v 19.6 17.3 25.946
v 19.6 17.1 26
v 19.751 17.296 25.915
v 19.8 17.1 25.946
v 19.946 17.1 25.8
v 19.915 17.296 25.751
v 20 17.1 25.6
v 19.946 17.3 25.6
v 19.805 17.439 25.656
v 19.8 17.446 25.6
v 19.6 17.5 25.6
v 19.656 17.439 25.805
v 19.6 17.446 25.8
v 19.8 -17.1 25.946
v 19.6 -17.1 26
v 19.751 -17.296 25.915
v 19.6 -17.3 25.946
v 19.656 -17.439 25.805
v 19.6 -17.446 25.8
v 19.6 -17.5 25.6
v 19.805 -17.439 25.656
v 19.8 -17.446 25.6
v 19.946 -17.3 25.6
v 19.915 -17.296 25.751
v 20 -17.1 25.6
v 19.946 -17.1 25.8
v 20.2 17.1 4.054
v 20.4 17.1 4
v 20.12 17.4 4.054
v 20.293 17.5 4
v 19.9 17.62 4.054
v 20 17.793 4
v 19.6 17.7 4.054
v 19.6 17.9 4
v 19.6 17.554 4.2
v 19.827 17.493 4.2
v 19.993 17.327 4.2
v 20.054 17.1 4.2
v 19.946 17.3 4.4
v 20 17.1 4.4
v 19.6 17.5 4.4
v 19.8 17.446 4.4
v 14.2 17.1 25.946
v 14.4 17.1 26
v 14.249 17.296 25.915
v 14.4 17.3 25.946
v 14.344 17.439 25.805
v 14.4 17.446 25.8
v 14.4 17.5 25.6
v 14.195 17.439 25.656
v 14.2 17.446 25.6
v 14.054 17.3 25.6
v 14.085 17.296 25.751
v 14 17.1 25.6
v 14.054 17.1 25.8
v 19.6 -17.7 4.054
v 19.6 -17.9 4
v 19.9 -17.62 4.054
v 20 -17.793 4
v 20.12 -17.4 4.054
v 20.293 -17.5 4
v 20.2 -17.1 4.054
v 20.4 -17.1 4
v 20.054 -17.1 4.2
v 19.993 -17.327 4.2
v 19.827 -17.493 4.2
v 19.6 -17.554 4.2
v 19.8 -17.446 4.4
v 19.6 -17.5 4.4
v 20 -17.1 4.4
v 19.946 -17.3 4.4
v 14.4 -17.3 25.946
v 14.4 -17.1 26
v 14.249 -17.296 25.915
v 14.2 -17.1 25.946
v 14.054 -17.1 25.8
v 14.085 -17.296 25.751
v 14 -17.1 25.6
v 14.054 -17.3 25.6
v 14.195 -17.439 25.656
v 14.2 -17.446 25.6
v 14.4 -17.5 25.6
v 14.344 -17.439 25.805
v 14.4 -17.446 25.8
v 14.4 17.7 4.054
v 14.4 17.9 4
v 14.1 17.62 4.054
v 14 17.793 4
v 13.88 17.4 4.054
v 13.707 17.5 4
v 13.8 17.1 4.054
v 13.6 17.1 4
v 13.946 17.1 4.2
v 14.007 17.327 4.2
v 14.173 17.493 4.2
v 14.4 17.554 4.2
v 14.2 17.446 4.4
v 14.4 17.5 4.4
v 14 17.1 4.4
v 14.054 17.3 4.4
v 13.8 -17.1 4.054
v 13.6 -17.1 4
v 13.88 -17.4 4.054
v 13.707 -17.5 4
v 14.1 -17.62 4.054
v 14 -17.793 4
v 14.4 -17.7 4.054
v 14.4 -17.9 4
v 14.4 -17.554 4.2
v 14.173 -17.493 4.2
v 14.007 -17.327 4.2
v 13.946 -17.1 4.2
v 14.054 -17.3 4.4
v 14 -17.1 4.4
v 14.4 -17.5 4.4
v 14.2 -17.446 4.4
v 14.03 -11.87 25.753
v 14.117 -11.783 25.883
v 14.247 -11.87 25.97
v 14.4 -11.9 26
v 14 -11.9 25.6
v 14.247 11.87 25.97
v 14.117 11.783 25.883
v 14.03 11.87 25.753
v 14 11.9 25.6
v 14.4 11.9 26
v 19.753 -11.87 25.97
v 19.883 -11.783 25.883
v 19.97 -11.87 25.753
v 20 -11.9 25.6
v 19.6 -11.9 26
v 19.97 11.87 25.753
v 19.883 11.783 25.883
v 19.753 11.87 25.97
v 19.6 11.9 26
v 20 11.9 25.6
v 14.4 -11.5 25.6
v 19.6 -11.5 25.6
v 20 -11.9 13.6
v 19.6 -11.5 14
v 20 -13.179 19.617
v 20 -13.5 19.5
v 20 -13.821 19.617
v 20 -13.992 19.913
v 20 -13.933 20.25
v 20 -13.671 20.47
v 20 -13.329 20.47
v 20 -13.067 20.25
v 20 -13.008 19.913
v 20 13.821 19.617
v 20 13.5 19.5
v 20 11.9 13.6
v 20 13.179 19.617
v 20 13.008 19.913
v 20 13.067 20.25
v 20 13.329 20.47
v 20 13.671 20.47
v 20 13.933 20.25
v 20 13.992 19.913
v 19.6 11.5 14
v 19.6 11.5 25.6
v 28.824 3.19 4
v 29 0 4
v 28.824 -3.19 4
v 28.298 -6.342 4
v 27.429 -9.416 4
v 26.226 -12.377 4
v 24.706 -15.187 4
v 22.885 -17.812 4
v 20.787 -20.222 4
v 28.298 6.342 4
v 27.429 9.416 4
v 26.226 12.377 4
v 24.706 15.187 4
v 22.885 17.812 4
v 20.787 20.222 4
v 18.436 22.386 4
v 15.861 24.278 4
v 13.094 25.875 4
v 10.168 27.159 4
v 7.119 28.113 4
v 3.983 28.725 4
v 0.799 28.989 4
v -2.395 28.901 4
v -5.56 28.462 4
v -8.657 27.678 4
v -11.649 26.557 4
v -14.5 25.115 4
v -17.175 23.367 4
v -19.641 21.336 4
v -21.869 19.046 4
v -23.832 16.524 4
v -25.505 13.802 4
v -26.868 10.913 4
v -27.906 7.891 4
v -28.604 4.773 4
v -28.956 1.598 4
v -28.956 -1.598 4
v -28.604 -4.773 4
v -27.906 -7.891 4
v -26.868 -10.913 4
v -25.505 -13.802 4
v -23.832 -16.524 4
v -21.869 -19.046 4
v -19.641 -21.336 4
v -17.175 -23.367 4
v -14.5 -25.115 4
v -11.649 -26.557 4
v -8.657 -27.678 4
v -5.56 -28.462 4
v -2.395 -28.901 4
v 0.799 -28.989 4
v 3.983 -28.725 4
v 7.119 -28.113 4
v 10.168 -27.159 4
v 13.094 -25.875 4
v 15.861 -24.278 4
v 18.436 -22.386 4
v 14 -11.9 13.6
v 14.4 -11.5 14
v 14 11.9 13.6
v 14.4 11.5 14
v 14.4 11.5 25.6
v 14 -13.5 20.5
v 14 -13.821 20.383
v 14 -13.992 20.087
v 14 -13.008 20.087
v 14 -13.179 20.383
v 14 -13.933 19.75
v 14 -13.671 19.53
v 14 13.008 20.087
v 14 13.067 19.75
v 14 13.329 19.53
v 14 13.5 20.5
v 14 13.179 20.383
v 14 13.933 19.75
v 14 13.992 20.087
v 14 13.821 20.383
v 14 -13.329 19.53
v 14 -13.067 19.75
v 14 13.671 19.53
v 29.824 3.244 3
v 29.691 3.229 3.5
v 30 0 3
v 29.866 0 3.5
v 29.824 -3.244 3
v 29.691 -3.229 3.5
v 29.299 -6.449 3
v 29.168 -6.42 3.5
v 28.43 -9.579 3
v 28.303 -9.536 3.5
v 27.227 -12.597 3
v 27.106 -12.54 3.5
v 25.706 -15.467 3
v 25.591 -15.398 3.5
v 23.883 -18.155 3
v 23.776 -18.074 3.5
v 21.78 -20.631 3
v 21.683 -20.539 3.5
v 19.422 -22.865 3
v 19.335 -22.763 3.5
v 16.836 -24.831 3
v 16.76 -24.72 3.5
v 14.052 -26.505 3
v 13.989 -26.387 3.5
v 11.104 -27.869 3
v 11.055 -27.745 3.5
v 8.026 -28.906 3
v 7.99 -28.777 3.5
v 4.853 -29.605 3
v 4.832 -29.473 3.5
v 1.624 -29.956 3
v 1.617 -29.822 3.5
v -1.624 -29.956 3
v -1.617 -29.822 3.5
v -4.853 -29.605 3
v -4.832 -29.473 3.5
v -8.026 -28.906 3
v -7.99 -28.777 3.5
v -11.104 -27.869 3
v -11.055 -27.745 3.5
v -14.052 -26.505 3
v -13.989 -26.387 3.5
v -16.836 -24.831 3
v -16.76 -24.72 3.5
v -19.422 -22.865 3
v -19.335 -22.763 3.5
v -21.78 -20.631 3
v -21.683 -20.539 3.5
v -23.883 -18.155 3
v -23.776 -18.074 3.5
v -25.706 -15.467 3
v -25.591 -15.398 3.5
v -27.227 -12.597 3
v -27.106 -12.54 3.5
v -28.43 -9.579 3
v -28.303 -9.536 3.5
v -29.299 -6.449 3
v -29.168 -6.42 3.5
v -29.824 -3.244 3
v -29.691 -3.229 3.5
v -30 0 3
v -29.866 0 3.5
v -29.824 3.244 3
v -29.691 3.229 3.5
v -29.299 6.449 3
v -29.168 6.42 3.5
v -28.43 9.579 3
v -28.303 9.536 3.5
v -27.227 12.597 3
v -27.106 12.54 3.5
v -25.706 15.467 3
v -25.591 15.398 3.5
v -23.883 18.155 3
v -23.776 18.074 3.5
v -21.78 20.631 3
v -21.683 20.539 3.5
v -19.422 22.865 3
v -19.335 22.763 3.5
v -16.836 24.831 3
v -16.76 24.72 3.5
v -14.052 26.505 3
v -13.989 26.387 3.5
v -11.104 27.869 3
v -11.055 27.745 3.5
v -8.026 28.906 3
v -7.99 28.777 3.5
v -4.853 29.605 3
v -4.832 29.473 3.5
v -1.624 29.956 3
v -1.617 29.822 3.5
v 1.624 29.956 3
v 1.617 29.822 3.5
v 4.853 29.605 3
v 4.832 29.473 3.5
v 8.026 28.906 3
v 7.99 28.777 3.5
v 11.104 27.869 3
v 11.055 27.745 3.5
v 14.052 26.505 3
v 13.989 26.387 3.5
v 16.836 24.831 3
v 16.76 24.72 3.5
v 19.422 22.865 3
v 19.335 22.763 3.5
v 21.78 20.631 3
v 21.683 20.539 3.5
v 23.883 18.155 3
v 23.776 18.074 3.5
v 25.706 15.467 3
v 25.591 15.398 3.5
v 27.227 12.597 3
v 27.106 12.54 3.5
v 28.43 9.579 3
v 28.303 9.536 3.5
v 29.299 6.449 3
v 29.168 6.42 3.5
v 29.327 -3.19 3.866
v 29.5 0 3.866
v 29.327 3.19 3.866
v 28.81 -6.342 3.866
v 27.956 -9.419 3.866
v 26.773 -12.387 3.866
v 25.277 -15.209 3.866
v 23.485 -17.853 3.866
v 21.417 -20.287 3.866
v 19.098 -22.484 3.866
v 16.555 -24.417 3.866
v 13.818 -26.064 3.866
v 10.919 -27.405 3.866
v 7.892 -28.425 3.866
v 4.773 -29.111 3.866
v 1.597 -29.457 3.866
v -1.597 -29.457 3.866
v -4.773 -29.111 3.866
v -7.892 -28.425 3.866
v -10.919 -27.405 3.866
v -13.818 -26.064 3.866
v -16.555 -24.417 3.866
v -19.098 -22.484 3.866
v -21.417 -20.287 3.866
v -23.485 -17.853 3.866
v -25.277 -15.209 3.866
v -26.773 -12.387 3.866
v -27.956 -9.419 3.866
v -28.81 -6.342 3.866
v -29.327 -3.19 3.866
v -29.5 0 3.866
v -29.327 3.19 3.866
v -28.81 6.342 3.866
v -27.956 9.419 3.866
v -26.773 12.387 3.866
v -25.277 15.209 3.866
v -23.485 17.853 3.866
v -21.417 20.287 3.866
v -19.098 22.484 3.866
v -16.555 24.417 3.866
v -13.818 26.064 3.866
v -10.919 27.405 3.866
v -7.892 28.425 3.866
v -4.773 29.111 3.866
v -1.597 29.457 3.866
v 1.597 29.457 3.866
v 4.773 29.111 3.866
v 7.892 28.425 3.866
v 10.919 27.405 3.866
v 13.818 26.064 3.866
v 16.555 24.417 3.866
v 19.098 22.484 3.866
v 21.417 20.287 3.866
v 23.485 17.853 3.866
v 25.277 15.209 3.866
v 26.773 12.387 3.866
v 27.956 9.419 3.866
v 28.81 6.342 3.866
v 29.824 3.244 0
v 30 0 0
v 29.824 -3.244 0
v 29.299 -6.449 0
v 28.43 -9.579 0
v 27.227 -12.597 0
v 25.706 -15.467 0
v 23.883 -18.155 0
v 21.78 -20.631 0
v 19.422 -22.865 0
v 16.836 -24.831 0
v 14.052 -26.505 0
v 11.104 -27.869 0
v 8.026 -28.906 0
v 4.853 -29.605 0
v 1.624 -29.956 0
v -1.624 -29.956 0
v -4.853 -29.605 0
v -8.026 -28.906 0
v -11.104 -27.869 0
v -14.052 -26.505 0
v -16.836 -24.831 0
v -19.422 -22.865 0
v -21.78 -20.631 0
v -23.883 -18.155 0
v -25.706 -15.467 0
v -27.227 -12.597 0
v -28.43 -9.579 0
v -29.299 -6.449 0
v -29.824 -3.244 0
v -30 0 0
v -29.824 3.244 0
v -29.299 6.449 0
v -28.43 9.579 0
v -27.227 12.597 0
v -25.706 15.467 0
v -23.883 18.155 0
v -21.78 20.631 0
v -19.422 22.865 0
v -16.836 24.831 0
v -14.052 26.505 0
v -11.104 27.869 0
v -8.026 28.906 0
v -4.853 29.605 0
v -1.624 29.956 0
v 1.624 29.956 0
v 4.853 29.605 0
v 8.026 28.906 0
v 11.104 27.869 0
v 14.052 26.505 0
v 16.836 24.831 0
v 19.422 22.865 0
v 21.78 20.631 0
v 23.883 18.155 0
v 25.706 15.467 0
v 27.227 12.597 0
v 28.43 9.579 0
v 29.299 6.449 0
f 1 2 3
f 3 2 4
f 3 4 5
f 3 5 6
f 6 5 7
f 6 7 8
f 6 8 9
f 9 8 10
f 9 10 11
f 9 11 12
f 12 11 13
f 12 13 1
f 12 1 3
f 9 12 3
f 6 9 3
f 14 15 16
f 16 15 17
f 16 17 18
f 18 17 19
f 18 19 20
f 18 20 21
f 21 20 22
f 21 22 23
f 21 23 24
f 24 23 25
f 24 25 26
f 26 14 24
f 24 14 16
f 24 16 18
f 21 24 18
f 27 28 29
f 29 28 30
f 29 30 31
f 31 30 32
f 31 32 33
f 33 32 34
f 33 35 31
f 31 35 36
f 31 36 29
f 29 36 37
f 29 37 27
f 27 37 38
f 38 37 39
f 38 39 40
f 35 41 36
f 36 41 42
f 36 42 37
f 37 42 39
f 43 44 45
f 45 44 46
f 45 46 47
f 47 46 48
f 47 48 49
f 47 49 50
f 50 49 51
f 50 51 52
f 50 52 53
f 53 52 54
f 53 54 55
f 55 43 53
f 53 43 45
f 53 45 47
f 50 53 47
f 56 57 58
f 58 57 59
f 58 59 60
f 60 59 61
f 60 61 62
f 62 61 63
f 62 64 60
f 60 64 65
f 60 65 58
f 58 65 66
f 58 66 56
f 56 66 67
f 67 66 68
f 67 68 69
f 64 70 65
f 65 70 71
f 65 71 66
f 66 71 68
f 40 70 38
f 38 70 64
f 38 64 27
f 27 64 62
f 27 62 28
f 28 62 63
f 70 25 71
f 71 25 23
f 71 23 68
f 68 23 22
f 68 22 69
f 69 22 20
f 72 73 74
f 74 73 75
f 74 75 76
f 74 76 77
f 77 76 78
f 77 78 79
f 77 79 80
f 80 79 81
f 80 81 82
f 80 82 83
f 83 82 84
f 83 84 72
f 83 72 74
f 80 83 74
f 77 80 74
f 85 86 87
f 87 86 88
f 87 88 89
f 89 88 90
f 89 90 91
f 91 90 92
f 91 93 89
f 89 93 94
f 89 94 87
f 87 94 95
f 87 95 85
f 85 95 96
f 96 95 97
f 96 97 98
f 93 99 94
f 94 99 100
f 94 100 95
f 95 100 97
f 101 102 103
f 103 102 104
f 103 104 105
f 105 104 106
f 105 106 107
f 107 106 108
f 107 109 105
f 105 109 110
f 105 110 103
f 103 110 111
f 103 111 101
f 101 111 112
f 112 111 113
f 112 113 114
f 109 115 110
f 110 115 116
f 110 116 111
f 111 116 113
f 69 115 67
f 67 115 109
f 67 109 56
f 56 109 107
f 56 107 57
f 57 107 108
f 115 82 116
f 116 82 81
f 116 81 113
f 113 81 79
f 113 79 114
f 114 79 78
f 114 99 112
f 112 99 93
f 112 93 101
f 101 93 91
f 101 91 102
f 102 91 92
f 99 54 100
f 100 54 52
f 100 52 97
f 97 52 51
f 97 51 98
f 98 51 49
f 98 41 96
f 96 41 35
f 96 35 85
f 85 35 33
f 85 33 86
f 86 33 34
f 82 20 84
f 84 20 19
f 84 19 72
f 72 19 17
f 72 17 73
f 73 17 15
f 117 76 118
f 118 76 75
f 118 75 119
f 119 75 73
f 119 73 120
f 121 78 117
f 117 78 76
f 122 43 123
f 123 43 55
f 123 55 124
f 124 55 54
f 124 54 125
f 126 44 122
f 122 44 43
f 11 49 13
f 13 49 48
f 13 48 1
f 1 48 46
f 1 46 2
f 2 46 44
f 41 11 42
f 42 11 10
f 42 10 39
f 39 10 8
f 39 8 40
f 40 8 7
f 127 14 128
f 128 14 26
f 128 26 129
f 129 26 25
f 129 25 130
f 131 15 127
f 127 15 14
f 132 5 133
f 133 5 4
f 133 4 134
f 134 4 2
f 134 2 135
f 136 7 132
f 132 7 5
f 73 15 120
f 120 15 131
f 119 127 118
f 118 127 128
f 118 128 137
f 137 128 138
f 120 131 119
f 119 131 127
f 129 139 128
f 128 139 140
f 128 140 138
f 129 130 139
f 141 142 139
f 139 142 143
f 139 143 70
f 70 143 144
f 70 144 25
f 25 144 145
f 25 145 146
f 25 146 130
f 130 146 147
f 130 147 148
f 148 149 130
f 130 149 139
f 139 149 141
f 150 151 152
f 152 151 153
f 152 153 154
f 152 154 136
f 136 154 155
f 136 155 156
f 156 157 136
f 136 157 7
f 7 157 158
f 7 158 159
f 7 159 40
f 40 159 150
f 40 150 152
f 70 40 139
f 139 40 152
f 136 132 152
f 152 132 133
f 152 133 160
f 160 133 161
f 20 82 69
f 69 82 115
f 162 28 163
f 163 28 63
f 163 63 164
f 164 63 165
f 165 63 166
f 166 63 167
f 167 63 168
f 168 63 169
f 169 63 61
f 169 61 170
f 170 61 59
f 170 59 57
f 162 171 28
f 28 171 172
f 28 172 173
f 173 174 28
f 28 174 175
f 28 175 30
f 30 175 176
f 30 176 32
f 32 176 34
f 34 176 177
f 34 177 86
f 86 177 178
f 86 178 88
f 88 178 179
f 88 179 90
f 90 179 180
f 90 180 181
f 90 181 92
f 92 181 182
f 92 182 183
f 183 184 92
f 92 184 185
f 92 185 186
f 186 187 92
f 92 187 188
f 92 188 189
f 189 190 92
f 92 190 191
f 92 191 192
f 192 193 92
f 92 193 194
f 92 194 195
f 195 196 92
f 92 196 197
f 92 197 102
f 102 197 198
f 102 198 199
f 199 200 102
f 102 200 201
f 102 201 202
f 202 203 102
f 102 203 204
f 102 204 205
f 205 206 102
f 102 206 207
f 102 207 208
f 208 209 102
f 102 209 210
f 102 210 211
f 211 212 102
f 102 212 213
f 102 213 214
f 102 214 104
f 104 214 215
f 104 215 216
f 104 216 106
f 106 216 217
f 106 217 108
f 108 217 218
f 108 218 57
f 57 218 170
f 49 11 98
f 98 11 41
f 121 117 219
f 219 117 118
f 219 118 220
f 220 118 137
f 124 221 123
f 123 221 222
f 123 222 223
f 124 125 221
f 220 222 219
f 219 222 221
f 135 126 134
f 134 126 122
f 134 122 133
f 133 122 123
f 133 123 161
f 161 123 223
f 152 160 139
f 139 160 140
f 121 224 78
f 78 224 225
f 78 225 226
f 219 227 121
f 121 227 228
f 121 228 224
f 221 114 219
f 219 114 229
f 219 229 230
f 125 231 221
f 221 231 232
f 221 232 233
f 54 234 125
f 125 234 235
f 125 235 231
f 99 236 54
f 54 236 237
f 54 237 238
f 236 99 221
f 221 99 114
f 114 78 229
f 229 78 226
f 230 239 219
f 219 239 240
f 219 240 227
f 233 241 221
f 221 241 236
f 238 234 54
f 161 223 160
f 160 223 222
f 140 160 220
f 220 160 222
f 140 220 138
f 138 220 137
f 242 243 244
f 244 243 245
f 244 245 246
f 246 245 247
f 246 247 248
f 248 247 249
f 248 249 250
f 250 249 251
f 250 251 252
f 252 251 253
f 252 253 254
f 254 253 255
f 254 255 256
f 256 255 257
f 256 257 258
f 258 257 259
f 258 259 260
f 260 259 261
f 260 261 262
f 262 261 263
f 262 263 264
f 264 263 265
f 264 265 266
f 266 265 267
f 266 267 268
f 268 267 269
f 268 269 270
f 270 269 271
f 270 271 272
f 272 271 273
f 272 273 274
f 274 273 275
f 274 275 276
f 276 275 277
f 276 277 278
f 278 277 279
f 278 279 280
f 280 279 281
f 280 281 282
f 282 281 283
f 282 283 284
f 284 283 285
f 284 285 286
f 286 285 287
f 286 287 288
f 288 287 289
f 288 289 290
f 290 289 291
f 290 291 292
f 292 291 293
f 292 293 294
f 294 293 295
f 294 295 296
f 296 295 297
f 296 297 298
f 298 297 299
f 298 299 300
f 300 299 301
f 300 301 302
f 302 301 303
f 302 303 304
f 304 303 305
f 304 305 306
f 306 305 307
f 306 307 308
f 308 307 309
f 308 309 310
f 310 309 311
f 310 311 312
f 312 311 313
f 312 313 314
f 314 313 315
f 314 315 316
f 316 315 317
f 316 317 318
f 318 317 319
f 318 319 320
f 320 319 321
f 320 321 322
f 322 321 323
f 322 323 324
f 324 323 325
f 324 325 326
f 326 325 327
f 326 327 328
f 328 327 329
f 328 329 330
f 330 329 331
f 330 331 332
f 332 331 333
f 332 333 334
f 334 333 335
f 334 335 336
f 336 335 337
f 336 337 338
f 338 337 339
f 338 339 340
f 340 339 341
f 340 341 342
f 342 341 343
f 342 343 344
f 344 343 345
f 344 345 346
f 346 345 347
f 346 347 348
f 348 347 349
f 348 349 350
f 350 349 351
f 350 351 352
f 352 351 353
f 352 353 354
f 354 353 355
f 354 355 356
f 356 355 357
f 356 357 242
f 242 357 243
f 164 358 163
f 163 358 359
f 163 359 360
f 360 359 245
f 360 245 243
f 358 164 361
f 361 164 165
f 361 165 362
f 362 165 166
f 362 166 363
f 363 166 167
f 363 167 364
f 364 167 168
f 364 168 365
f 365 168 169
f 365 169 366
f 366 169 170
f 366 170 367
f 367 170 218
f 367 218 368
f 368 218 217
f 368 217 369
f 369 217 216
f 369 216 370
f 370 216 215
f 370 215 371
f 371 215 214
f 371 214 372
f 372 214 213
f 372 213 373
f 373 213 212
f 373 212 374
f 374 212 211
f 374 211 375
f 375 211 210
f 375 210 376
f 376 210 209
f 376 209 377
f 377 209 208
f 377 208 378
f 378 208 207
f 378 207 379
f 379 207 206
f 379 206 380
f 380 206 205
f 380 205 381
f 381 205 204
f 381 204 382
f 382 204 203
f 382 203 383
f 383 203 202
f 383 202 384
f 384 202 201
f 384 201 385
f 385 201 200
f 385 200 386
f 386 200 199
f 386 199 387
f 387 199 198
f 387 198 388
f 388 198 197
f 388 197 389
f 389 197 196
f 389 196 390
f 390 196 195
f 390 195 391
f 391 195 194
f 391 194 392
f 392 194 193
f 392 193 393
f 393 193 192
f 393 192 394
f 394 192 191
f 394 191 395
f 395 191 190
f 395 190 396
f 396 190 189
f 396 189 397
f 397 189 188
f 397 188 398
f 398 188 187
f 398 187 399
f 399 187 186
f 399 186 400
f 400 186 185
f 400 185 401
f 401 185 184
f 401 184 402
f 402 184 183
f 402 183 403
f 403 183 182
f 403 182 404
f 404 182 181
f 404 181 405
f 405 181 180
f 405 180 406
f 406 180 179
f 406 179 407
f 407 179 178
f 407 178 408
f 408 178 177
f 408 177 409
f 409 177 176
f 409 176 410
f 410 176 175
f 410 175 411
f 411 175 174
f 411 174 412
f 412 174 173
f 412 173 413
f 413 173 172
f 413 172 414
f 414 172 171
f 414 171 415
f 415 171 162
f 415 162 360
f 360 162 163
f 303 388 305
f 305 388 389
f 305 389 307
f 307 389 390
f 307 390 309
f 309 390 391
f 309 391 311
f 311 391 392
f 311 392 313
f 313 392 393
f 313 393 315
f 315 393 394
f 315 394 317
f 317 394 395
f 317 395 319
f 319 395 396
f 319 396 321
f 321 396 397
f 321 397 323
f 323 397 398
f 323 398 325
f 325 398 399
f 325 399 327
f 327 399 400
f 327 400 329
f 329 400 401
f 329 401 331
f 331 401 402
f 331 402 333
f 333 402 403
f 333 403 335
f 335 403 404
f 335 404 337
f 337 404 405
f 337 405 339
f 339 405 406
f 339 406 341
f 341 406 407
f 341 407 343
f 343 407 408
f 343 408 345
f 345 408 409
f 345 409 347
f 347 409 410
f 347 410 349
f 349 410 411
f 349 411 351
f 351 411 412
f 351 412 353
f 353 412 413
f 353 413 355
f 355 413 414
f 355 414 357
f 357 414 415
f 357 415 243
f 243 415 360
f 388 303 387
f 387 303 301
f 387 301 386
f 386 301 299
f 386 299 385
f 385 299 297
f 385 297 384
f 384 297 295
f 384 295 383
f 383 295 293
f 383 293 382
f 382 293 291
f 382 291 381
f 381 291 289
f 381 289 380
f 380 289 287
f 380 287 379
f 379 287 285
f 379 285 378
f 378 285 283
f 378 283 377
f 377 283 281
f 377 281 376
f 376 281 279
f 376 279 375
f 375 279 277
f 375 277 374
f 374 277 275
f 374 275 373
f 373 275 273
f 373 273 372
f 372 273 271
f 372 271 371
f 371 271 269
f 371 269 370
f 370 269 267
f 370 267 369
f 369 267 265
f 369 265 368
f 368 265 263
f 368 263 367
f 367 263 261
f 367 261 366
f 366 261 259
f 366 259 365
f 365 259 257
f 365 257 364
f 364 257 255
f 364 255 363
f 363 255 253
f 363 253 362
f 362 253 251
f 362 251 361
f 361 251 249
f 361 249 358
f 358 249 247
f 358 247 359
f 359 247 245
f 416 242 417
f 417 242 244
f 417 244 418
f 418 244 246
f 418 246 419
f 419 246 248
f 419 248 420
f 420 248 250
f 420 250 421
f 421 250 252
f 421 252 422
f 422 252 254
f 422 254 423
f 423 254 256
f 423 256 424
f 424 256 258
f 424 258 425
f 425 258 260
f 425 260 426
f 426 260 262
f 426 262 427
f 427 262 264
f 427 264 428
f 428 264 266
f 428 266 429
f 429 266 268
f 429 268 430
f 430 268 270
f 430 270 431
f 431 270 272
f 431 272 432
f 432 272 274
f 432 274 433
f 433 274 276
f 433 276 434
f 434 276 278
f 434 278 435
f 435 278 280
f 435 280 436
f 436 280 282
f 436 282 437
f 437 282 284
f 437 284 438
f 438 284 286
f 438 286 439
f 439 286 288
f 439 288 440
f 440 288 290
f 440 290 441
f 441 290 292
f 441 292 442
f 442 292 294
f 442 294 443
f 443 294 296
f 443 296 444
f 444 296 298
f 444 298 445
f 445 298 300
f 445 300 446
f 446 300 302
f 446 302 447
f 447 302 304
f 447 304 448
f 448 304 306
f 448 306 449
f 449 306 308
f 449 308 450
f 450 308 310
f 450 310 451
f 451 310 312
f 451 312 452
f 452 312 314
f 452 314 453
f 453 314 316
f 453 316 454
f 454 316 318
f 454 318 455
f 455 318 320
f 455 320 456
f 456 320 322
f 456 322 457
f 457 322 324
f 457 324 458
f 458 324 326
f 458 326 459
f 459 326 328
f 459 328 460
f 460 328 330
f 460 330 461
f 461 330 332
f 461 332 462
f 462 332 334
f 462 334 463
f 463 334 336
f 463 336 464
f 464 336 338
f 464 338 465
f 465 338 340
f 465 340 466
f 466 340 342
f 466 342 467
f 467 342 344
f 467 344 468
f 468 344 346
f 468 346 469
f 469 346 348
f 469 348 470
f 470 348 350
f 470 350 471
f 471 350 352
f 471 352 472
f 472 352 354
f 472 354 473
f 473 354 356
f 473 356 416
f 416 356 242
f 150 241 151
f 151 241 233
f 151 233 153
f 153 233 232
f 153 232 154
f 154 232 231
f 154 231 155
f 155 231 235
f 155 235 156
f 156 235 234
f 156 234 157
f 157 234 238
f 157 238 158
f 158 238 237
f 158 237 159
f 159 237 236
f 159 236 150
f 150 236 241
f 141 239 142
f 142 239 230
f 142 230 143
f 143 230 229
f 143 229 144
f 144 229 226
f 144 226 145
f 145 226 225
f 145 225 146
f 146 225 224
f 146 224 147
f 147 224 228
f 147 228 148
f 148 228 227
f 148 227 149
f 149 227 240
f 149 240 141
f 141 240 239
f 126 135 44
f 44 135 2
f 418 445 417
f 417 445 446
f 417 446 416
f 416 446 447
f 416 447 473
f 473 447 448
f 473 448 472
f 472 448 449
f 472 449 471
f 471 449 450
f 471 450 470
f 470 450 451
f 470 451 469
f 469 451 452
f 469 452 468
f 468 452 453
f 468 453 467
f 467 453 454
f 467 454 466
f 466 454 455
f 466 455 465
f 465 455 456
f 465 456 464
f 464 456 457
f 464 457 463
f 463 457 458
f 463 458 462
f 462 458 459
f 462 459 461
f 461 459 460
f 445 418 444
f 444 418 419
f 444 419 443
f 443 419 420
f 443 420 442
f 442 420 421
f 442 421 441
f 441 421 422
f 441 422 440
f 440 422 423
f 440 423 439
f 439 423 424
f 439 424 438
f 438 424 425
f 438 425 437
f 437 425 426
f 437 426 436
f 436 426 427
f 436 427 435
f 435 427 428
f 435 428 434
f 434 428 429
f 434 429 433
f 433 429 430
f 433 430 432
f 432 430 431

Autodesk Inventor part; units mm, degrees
ref_plane "YZ Plane" through (0, 0, 0) normal (1, 0, 0) x (0, 1, 0)
ref_plane "XZ Plane" through (0, 0, 0) normal (0, 1, 0) x (-1, 0, 0)
ref_plane "XY Plane" through (0, 0, 0) normal (0, 0, 1) x (1, 0, 0)
sketch "Skizze1" plane through (0, 0, 0) normal (0, 0, 1) x (1, 0, 0)
  circle A0 centre (0, 0) radius 30
  dimension "d0" = 60
extrude "Extrusion1" add sketch "Skizze1" along normal blind 4
sketch "Skizze2" plane through (0, 0, 4) normal (0, 0, 1) x (1, 0, 0)
  line L0 (14, 17.5) -> (20, 17.5)
  line L1 (20, -17.5) -> (14, -17.5)
  line L2 (20, 11.5) -> (14, 11.5)
  line L3 (20, -11.5) -> (14, -11.5)
  line L4 (-42, 0) -> (42, 0) projected
  line L5 (14, -17.5) -> (14, -11.5)
  line L6 (14, 11.5) -> (14, 17.5)
  line L7 (20, 17.5) -> (20, 11.5)
  line L8 (20, -11.5) -> (20, -17.5)
  point P0 (0, 0)
  point P1 (14, 0)
  dimension "d5" = 6
  dimension "d6" = 35
  dimension "d9" = 23
  dimension "d10" = 14
extrude "Extrusion2" add sketch "Skizze2" along normal blind 22
sketch "Skizze3" plane through (14, -17.5, 4) normal (-1, 0, 0) x (0, 0, 1)
  line L0 (22, 35) -> (22, 29) projected
  line L1 (22, 6) -> (22, 0) projected
  line L2 (0, 0) -> (22, 0) projected
  line L3 (-4, 17.5) -> (14.084, 17.5)
  line L4 (0, -12.5) -> (0, 47.5) projected
  point P0 (16, 4)
  point P1 (16, 31)
  point P2 (22, 3)
  point P3 (22, 32)
  dimension "d13" = 27
  dimension "d14" = 16
hole "Bohrung1" at (14, -13.5, 20) at (14, 13.5, 20) direction (1, 0, 0) diameter 1 depth 6.5 tip angle 118
fillet "Rundung2" radius 1 1 edges at (-30, 0, 4)
sketch "Skizze6" plane through (14, 11.5, 4) normal (-1, 0, 0) x (0, 0, 1)
  line L0 (0, -23) -> (22, -23) projected
  line L1 (0, 0) -> (22, 0) projected
  line L2 (0, 0) -> (10, 0)
  line L3 (10, 0) -> (10, -23)
  line L4 (10, -23) -> (0, -23)
  line L5 (0, -23) -> (0, 0)
  point P0 (-4, -11.5)
  point P1 (0.5, -23)
  point P2 (21.5, -23)
  point P3 (21.5, 0)
  point P4 (0.5, -23)
  point P5 (10, 0)
  dimension "d30" = 10
extrude "Extrusion4" add sketch "Skizze6" against normal up to surface (6 mm away)
chamfer "Fasen2" distance 0.4 angle 45 8 edges at (14, 11.5, 20) (17, 11.5, 26) (20, 11.5, 20) (14, 0, 14) (14, -11.5, 20) (17, -11.5, 26) (20, -11.5, 20) (20, 0, 14)
fillet "Rundung3" radius 0.4 14 edges at (14, 0, 4) (14, -17.5, 15) (20, -17.5, 15) (17, -17.5, 26) (20, -14.7, 26) (14, -14.7, 26) (14, 14.7, 26) (20, 14.7, 26) (17, 17.5, 26) (14, 17.5, 15) (17, -17.5, 4) (20, 17.5, 15) (20, 0, 4) (17, 17.5, 4)
properties part number "Shoulder"
